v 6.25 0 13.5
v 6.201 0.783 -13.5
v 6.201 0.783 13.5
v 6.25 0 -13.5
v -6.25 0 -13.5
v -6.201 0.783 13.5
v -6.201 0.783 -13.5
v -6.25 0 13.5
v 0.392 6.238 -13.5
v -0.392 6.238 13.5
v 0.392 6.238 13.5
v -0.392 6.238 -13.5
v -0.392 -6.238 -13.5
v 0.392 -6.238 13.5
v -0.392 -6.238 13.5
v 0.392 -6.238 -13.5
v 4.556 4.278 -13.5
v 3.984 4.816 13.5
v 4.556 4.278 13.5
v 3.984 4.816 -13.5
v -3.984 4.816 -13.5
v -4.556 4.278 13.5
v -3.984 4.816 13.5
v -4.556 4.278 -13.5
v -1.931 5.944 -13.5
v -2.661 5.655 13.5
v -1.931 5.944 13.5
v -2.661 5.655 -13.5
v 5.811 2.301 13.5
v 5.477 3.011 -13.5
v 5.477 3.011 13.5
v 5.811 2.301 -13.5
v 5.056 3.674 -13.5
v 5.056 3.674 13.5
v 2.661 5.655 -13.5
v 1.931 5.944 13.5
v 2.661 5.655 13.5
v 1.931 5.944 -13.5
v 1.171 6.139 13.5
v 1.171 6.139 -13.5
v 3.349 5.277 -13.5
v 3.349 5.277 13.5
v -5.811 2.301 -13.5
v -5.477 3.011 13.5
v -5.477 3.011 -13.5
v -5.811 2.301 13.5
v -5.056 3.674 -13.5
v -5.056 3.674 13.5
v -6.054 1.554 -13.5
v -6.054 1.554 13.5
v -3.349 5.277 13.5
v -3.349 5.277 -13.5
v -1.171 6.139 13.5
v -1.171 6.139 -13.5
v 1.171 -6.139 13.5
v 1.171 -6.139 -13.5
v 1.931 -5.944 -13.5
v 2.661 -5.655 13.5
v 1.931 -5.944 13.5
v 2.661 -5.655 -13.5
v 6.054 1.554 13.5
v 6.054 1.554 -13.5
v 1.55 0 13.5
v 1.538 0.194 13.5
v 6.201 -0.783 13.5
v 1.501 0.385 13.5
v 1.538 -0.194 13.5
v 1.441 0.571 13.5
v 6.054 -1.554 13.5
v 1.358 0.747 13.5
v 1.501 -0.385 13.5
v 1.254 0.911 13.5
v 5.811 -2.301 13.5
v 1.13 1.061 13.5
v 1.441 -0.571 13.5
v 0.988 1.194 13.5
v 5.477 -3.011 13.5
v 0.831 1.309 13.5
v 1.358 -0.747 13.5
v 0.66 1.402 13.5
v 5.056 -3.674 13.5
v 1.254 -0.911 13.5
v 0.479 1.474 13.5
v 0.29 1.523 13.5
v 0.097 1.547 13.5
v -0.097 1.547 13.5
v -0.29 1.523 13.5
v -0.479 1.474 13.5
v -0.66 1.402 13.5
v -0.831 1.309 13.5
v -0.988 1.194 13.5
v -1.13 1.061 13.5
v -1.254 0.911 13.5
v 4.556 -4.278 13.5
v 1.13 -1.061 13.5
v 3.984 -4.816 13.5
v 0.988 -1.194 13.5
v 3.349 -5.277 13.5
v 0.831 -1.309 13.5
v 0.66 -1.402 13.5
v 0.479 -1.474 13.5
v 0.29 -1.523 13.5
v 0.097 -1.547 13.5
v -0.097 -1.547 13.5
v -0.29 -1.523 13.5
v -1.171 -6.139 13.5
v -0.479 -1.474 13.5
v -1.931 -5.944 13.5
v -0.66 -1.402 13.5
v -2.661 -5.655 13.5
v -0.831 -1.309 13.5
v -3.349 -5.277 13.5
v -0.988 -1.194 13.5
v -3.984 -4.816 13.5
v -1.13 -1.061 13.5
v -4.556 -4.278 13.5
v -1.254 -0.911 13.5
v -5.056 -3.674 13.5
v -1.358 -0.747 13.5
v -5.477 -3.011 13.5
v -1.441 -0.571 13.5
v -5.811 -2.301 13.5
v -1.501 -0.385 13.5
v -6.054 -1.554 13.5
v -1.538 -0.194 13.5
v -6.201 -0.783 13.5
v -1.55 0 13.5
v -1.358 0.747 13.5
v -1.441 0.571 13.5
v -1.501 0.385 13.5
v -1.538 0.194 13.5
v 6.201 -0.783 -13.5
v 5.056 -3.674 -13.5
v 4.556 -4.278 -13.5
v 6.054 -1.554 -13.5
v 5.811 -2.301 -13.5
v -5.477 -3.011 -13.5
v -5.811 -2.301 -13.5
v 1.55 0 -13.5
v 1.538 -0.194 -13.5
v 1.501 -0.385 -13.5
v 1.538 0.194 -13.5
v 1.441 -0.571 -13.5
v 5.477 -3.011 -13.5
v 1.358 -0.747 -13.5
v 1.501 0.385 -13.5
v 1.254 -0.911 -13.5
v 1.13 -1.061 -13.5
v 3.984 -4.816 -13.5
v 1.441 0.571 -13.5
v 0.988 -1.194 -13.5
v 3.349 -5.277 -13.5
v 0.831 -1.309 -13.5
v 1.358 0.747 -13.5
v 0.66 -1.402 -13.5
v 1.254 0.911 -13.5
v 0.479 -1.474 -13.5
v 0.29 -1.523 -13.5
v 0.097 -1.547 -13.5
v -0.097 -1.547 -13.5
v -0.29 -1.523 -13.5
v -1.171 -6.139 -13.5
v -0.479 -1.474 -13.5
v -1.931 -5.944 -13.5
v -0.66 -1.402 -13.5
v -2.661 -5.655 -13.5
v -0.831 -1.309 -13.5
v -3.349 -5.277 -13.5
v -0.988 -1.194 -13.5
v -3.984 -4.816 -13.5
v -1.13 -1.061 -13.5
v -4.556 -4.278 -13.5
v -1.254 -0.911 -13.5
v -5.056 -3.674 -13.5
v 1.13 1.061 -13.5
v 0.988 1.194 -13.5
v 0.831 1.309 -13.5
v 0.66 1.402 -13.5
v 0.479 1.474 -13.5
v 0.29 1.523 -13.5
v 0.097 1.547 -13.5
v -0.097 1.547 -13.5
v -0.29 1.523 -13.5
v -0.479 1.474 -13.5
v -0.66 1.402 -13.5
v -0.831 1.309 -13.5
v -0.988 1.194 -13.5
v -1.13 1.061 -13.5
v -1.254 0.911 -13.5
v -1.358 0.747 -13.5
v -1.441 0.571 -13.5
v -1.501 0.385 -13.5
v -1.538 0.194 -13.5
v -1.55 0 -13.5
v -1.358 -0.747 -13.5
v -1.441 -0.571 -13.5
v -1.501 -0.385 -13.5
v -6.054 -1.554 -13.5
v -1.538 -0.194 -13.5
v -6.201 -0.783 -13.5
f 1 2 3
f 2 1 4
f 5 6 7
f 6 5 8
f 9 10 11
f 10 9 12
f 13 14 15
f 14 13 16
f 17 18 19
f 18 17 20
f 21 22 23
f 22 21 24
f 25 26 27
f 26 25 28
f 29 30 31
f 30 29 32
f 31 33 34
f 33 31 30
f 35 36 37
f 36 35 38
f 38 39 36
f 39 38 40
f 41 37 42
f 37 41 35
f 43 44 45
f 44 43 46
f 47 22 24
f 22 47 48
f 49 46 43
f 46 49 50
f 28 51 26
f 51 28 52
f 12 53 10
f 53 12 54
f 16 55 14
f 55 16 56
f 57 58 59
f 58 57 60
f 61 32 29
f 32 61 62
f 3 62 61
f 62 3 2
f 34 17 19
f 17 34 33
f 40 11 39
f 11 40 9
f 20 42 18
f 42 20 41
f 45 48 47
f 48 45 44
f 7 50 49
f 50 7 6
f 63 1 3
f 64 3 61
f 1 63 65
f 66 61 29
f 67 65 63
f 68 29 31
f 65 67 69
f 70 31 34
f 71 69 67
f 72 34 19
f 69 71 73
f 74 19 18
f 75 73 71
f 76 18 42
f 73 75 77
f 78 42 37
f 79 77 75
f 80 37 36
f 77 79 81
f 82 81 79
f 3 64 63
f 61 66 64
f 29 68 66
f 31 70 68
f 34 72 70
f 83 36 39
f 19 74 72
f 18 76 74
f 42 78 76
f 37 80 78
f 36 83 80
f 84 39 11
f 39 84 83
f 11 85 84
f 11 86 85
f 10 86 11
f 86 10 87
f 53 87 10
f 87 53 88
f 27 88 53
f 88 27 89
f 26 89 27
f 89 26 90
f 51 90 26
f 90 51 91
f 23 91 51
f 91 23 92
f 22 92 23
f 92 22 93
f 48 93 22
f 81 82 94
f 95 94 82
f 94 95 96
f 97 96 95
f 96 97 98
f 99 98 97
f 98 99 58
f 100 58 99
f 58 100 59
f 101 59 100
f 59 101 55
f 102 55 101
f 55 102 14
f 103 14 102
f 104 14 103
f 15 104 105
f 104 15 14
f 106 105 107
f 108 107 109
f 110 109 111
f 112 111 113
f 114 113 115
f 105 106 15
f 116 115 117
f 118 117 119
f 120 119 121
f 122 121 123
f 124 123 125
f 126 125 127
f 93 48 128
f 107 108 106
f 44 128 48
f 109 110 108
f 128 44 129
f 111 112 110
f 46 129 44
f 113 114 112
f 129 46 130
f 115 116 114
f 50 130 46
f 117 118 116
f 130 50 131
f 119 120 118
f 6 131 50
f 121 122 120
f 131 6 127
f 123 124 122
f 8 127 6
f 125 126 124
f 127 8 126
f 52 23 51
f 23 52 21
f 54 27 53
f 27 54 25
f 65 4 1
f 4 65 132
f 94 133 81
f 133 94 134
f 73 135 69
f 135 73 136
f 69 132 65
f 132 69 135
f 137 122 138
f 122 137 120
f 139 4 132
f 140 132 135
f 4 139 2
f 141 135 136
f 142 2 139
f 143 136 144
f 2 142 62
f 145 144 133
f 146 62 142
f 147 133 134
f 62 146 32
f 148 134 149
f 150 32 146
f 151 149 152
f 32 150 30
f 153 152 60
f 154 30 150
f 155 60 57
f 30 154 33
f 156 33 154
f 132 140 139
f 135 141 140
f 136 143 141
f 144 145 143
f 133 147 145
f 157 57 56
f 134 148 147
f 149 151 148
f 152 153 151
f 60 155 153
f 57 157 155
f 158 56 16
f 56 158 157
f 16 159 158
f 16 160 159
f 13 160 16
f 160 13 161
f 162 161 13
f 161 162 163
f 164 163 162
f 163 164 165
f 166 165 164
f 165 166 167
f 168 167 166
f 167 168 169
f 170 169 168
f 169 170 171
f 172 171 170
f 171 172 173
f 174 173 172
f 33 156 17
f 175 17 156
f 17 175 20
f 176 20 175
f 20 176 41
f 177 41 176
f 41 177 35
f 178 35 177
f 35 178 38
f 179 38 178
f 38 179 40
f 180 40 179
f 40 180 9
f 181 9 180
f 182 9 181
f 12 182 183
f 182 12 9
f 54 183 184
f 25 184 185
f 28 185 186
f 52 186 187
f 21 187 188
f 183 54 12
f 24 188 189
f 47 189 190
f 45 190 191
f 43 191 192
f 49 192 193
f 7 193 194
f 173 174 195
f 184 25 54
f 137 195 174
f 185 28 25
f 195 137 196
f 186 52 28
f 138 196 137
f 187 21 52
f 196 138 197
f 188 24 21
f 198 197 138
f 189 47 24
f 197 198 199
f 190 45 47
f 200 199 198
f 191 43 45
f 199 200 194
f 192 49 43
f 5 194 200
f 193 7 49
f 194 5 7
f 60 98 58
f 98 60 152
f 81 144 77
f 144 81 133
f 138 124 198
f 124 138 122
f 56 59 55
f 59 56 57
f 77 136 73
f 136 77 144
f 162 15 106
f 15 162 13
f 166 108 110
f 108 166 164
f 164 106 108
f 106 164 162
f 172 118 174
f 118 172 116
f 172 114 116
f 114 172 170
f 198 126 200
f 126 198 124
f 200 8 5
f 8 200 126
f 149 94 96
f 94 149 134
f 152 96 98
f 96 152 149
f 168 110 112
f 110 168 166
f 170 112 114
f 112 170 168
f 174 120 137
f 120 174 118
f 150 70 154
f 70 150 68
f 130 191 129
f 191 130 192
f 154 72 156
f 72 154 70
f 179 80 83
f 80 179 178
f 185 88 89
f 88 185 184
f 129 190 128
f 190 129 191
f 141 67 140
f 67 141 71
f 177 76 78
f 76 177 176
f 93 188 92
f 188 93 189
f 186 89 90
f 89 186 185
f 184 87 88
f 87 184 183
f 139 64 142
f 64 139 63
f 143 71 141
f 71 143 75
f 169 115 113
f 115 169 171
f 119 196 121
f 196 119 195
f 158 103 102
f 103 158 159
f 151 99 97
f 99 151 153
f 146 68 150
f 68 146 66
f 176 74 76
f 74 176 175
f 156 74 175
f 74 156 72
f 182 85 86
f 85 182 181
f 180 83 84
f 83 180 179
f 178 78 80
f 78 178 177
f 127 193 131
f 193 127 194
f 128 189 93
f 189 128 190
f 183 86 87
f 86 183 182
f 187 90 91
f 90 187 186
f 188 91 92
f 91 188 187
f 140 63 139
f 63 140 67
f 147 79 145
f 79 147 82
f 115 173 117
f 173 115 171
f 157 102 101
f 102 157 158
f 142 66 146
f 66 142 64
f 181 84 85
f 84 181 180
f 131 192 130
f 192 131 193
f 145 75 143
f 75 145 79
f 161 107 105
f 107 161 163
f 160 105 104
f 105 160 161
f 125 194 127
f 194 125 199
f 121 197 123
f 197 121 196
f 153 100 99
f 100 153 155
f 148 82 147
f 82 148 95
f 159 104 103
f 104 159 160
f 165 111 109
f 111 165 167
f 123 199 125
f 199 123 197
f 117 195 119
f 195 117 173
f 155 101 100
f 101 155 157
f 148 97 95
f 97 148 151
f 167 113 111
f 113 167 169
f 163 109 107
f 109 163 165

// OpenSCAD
$fn = 50;


difference() {
	union() {
		translate(v = [0, 0, -13.5000000000]) {
			cylinder(h = 27, r = 6.2500000000);
		}
	}
	union() {
		translate(v = [0, 0, -100.0000000000]) {
			cylinder(h = 200, r = 1.5500000000);
		}
	}
}
